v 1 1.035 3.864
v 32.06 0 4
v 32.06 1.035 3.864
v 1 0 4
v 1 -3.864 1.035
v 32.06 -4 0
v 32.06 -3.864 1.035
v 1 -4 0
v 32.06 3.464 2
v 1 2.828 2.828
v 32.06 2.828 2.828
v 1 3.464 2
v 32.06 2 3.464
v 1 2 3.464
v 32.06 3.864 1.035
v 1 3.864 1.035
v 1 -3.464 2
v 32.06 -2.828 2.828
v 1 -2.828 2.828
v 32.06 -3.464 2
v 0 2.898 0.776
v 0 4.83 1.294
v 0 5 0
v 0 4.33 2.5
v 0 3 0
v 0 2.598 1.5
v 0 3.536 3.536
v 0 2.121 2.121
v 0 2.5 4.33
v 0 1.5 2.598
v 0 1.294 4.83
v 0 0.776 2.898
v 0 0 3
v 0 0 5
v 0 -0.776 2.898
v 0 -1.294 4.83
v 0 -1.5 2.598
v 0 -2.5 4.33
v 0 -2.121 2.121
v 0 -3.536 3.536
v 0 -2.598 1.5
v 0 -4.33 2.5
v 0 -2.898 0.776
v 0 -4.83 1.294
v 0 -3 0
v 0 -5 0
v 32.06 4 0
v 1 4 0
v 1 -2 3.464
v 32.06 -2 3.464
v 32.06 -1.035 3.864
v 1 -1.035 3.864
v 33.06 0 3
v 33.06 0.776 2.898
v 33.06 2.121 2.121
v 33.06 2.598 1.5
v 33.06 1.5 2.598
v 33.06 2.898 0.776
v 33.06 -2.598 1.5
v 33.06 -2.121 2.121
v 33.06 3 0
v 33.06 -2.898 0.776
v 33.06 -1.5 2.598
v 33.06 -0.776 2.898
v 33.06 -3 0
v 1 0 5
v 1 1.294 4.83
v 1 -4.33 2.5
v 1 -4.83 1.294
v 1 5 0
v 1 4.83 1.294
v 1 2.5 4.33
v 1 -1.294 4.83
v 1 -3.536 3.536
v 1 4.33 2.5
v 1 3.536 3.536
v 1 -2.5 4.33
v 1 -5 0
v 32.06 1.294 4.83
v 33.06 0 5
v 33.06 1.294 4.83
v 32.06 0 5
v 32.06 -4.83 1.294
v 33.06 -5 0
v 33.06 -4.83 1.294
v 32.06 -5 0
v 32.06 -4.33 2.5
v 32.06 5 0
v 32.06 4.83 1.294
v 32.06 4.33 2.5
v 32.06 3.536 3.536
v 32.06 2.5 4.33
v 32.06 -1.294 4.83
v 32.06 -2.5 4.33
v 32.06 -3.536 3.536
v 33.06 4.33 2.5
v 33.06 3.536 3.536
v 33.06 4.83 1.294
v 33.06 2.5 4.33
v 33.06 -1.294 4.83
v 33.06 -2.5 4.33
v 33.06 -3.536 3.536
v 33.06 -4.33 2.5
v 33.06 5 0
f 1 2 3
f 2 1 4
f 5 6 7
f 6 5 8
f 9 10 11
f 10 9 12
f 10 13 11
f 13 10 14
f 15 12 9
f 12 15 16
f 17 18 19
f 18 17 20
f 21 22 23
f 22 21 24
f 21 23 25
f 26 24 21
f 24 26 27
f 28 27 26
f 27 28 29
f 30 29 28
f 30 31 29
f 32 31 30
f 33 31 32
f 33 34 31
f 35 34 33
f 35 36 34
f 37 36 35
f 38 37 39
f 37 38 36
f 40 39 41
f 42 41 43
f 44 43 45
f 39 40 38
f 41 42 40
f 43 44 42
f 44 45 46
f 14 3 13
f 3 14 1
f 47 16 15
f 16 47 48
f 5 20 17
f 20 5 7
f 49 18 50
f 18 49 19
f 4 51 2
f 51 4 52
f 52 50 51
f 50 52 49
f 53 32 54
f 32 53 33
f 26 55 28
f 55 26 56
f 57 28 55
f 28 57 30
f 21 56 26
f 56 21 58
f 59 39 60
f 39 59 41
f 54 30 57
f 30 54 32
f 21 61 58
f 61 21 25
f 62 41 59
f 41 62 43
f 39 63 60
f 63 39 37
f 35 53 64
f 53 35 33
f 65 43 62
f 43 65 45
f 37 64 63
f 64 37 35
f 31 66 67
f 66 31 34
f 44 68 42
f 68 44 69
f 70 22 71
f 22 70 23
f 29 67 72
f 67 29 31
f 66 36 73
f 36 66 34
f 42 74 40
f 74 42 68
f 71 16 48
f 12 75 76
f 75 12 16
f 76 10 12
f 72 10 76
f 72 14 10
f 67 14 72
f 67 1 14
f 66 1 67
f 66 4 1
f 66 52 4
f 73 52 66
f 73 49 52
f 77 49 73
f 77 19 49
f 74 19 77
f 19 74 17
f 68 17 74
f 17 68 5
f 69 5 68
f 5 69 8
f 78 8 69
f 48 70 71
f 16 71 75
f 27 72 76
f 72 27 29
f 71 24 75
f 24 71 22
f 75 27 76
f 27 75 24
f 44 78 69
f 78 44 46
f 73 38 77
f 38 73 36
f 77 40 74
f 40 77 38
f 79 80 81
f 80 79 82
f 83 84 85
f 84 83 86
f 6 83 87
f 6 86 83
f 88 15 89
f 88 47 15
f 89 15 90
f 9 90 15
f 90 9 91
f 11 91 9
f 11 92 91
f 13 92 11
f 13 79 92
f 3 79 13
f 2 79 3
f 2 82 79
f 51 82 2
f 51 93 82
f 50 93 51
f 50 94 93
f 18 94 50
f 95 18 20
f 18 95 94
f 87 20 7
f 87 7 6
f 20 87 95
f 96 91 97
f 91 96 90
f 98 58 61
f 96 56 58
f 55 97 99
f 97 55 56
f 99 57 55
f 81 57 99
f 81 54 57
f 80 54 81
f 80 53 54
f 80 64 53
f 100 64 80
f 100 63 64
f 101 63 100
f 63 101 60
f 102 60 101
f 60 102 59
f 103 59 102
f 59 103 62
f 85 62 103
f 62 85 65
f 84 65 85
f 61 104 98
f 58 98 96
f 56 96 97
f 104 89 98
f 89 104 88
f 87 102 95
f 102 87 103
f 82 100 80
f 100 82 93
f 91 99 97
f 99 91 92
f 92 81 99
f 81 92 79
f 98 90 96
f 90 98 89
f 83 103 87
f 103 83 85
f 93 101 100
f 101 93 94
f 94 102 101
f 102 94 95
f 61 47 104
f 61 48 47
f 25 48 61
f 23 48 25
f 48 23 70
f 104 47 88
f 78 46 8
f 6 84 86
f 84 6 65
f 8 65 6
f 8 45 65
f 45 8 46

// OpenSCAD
// file: ../build_environments.scad
// build_environments.scad: modules to build level sections
//

module pool(diameter=10.0, wall_height=2.0, step_width=3.0, connections=[])
{
    difference() {
        union() {
        difference() {
            cylinder(h=0.5,r1=diameter+step_width,r2=diameter+step_width,$fn=48);
            translate([0,0,-0.1])
                cylinder(h=0.7,r1=diameter,r2=diameter,$fn=48);
        }
        difference() {
            cylinder(h=wall_height,r1=diameter+step_width+1.0,r2=diameter+step_width+1.0,$fn=48);
            translate([0,0,-0.1])
                cylinder(h=wall_height+0.2,r1=diameter+step_width,r2=diameter+step_width,$fn=48);
        }
        }
    
        for (c = connections)
        {
            rotate([0,90,0]) {
                angle = atan2(c[1],c[0]);
                rotate([-angle,0,0]) {
                    cylinder(h=diameter+5.0,r1=c[2],r2=c[2],$fn=48);
                }
            }
        }
    }
}

module straight(length=10.0, width=2.0, dy1=0.0, dy2=0.0, dz=0.0)
{
    dims = [0, 0, 0, 0, 0, (dz/length)];
    matrix = [
        [ 1, dims[0], dims[1], 0 ],
        [ dims[2], 1, dims[4], 0 ],
        [ dims[5], dims[3], 1, 0 ],
        [ 0, 0, 0, 1 ]
    ];
    multmatrix(matrix)
    difference() {
        translate([dy1,0,0])
        union() {
            rotate([0,90,0]) {
                difference() {
                    cylinder(h=(length-dy1-dy2),r1=width+1.0,r2=width+1.0,$fn=24);
                    translate([0,0,-0.1])
                        cylinder(h=(length-dy1-dy2+0.2),r1=width,r2=width,$fn=24);
                }
                difference() {
                    cylinder(h=1.0,r1=width+2.0,r2=width+2.0,$fn=24);
                    translate([0,0,-0.1])
                        cylinder(h=1.2,r1=width,r2=width,$fn=24);
                }
                translate([0,0,(length-dy1-dy2)-1.0]) {
                    difference() {
                        cylinder(h=1.0,r1=width+2.0,r2=width+2.0,$fn=24);
                        translate([0,0,-0.1])
                            cylinder(h=1.2,r1=width,r2=width,$fn=24);
                    }
                }
            }
        }
        translate([0,0,-(2*width+4.0)/2])
            cube([3*length,3*length,2*width+4.0],center=true);
    }
}

module curve(p0=[0,0], center=[0,0], dir=1, angle=0.0, width=2.0)
{
    radius = sqrt((p0[0]-center[0])*(p0[0]-center[0]) + (p0[1]-center[1])*(p0[1]-center[1]));
    if (dir == 0) {
        difference() {
            rotate([0,0,-90])
            difference() {
                rotate_extrude(angle = angle, convexity = 10, $fn=32)
                    translate([radius, 0, 0])
                        circle(r = width+1.0,$fn=24);
                rotate([0,0,-1.0])
                    rotate_extrude(angle = angle+2.0, convexity = 10, $fn=32)
                        translate([radius, 0, 0])
                            circle(r = width,$fn=24);
            }
            translate([0,0,-(2*width+4.0)/2])
                cube([5*radius,5*radius,2*width+4.0],center=true);
        }
    }
    else {
        difference() {
            rotate([0,0,90])
            difference() {
                rotate_extrude(angle = -angle, convexity = 10, $fn=32)
                    translate([radius, 0, 0])
                        circle(r = width+1.0,$fn=24);
                rotate([0,0,1.0])
                    rotate_extrude(angle = -angle-2.0, convexity = 10, $fn=32)
                        translate([radius, 0, 0])
                            circle(r = width,$fn=24);
            }
            translate([0,0,-(2*width+4.0)/2])
                cube([5*radius,5*radius,2*width+4.0],center=true);
        }
    }

}

// test pool
//pool(diameter=12.0000, wall_height=3.0000, step_width=3.0000, connections=[[0.0000,-26.0000,2.0000], [23.6074,0.0000,2.0000]]);

// test straight, slope
//straight(length=26.0000, width=2.0000, dy1=11.8322, dy2=6.7082, dz=0.0000);
//straight(length=29.1549, width=12.0000, dy1=0.0000, dy2=0.0000, dz=-15.0000);

// test curve
//curve(p0=[23.6074, 0.0000], center=[23.6074, 5.0000], dir=0, angle=60.1011, width=2.0000);
//curve(p0=[33.6426, 12.4219], center=[37.9771, 9.9295], dir=1, angle=120.4627, width=2.0000);
// main file
use <../build_environments.scad>;
straight(length=33.0601, width=3.0000, dy1=0.0000, dy2=0.0000, dz=0.0000);
